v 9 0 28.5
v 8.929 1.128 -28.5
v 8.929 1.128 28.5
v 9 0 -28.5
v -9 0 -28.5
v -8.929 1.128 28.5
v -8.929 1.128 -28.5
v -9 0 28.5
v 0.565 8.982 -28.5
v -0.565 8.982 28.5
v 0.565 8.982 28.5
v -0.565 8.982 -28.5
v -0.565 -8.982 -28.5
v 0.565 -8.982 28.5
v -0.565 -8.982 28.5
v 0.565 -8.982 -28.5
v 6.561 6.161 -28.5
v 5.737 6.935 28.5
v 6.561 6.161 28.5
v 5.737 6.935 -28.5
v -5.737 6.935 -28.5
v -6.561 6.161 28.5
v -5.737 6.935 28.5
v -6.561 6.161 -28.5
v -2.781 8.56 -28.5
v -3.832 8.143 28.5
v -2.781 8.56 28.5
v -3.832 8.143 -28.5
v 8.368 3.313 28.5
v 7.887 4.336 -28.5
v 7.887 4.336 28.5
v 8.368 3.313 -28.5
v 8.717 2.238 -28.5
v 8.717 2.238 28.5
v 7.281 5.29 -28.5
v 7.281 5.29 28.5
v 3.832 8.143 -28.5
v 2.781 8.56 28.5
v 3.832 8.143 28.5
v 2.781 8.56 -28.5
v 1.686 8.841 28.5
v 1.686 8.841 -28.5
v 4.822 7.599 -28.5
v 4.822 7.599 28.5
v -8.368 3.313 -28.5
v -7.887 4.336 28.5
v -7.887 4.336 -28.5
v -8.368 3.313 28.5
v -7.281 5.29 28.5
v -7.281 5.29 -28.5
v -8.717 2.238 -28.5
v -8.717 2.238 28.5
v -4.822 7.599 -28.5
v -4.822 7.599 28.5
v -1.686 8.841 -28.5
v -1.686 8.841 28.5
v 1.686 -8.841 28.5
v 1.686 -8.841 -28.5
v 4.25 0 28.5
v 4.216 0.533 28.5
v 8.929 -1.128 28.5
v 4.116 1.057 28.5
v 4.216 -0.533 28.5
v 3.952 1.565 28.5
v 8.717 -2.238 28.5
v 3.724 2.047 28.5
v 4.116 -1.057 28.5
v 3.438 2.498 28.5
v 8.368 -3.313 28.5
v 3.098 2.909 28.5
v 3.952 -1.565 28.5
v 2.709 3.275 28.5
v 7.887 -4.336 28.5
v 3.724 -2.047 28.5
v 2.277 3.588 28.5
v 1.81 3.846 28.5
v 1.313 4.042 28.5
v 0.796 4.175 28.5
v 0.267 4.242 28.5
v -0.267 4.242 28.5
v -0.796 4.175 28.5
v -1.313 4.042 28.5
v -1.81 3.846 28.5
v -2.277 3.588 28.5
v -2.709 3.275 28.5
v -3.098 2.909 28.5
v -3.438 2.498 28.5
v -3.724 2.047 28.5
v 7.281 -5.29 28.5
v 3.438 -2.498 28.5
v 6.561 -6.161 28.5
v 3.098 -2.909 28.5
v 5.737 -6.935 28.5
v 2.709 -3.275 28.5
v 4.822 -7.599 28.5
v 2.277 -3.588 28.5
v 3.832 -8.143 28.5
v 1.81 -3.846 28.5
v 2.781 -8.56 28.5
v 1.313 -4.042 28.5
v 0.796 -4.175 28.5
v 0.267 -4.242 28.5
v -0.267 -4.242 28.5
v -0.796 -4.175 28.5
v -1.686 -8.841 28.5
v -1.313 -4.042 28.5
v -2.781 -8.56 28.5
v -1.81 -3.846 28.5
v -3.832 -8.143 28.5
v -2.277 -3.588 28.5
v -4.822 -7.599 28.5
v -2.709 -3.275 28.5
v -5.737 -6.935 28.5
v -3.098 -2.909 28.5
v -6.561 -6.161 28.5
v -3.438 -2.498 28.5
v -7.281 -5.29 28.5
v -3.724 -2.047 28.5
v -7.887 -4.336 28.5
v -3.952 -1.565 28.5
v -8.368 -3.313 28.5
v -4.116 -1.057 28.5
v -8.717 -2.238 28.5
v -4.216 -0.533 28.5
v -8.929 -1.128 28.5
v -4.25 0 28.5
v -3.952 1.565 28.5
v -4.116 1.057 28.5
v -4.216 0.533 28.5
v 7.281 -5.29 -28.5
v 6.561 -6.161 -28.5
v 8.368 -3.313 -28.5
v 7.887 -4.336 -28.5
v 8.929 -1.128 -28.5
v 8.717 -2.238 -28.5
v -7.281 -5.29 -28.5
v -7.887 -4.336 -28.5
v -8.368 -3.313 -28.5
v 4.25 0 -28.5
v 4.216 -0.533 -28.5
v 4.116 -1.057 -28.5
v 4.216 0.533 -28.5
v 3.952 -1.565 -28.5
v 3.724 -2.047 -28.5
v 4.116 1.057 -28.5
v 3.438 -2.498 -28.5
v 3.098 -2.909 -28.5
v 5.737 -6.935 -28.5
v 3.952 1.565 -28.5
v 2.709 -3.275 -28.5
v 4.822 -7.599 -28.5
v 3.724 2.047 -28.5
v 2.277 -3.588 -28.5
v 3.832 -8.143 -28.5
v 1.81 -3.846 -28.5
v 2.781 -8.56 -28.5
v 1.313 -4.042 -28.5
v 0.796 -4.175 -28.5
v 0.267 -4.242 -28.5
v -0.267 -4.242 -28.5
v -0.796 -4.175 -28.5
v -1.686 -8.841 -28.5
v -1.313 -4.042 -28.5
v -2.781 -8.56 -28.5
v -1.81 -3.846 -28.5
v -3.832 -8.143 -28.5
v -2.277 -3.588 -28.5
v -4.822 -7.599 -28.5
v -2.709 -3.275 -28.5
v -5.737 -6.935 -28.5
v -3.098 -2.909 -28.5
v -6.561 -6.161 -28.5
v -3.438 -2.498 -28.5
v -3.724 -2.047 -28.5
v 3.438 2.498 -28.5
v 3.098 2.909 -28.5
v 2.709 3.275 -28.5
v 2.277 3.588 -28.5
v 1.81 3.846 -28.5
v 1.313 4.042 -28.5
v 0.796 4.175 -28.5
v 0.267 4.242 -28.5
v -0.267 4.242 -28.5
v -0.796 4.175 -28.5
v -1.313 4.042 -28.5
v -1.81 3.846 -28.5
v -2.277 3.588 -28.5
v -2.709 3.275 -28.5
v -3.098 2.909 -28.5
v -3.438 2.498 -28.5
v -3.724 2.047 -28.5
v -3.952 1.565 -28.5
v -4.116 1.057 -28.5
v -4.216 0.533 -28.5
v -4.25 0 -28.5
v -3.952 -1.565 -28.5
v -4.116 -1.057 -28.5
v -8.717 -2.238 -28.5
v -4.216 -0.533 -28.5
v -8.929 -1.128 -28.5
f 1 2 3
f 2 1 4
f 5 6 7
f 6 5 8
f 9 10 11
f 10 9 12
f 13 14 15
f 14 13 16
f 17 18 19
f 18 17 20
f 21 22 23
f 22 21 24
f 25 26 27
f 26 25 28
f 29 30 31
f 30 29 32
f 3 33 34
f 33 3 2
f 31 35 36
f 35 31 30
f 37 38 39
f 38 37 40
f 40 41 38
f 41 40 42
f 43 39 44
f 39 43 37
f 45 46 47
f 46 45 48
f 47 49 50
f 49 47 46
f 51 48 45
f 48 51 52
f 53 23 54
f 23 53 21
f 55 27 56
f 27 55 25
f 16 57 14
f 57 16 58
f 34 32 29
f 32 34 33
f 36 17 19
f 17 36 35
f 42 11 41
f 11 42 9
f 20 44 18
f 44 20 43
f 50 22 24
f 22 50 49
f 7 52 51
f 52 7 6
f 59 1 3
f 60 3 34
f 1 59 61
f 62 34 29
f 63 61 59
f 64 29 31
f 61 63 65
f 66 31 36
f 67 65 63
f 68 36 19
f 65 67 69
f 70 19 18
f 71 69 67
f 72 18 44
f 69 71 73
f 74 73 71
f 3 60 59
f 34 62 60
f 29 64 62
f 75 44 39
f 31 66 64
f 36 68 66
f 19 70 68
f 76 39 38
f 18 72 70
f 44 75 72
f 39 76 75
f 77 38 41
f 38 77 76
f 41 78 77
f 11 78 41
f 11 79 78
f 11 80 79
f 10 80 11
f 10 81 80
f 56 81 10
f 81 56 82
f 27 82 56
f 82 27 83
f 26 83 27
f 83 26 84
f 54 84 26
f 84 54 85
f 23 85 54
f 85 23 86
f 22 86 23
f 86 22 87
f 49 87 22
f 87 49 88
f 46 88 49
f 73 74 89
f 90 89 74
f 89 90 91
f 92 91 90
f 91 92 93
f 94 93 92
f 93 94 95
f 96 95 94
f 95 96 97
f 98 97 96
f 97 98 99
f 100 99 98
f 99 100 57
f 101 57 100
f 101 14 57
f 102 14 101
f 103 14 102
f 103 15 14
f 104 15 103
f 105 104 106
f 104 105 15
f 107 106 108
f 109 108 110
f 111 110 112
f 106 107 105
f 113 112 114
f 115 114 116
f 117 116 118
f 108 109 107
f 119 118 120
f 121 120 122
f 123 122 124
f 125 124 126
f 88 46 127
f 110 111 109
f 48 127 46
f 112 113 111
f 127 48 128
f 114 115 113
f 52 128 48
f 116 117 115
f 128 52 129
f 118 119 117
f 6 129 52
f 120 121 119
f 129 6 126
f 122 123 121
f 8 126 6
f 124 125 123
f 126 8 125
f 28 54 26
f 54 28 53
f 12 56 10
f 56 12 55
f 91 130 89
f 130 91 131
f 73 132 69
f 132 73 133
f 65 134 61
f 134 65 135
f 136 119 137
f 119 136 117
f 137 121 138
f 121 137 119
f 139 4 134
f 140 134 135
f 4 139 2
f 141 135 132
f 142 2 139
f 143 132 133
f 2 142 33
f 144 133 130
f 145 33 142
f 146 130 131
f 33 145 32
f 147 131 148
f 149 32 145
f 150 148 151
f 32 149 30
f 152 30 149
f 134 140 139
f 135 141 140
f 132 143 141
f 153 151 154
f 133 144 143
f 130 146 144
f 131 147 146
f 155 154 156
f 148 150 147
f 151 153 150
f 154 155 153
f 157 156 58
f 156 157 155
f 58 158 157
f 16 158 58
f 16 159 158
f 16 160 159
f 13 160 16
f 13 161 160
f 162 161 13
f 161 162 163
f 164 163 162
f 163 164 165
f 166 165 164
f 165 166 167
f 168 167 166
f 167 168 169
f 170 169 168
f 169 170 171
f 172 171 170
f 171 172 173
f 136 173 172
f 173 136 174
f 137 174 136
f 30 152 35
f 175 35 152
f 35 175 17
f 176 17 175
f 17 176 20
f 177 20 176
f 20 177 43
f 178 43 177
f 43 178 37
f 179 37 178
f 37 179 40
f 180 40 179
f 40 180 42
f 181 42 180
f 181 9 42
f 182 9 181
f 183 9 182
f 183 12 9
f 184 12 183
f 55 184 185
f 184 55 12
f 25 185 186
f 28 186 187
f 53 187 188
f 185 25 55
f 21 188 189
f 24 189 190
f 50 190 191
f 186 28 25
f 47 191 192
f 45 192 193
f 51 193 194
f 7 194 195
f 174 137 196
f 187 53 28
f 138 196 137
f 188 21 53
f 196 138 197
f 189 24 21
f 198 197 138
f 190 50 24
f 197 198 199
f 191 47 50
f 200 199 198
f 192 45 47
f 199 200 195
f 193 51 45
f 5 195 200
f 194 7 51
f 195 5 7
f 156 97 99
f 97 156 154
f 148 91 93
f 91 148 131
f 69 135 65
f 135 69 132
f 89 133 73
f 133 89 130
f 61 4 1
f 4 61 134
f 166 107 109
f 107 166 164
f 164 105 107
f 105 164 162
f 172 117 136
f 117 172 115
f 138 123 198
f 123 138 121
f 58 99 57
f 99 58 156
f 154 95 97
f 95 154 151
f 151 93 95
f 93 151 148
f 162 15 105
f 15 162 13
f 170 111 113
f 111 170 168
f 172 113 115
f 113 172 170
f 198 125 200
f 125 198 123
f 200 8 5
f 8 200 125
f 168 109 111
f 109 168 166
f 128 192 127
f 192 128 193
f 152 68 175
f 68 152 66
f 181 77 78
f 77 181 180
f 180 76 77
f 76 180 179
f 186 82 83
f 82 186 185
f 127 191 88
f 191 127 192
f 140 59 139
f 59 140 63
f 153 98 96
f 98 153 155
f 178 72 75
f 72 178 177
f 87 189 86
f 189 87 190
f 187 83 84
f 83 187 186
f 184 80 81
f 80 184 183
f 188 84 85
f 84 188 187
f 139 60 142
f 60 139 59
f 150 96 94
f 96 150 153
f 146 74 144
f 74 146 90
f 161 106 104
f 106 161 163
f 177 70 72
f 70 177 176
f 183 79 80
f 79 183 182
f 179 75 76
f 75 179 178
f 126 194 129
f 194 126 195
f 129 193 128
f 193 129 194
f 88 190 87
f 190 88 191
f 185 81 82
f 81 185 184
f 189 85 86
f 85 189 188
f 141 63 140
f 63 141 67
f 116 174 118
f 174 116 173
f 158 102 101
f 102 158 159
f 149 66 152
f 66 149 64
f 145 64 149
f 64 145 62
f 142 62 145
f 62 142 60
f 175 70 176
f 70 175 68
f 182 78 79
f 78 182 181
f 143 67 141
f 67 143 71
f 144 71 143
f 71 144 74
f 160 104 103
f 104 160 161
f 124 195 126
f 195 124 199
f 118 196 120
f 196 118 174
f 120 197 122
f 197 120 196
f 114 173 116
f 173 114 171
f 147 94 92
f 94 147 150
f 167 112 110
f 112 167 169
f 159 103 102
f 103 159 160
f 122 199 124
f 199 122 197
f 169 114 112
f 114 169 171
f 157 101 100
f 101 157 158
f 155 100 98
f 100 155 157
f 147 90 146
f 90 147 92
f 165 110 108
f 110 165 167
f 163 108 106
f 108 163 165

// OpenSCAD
$fn = 50;


difference() {
	union() {
		translate(v = [0, 0, -28.5000000000]) {
			cylinder(h = 57, r = 9.0000000000);
		}
	}
	union() {
		translate(v = [0, 0, -100.0000000000]) {
			cylinder(h = 200, r = 4.2500000000);
		}
	}
}
